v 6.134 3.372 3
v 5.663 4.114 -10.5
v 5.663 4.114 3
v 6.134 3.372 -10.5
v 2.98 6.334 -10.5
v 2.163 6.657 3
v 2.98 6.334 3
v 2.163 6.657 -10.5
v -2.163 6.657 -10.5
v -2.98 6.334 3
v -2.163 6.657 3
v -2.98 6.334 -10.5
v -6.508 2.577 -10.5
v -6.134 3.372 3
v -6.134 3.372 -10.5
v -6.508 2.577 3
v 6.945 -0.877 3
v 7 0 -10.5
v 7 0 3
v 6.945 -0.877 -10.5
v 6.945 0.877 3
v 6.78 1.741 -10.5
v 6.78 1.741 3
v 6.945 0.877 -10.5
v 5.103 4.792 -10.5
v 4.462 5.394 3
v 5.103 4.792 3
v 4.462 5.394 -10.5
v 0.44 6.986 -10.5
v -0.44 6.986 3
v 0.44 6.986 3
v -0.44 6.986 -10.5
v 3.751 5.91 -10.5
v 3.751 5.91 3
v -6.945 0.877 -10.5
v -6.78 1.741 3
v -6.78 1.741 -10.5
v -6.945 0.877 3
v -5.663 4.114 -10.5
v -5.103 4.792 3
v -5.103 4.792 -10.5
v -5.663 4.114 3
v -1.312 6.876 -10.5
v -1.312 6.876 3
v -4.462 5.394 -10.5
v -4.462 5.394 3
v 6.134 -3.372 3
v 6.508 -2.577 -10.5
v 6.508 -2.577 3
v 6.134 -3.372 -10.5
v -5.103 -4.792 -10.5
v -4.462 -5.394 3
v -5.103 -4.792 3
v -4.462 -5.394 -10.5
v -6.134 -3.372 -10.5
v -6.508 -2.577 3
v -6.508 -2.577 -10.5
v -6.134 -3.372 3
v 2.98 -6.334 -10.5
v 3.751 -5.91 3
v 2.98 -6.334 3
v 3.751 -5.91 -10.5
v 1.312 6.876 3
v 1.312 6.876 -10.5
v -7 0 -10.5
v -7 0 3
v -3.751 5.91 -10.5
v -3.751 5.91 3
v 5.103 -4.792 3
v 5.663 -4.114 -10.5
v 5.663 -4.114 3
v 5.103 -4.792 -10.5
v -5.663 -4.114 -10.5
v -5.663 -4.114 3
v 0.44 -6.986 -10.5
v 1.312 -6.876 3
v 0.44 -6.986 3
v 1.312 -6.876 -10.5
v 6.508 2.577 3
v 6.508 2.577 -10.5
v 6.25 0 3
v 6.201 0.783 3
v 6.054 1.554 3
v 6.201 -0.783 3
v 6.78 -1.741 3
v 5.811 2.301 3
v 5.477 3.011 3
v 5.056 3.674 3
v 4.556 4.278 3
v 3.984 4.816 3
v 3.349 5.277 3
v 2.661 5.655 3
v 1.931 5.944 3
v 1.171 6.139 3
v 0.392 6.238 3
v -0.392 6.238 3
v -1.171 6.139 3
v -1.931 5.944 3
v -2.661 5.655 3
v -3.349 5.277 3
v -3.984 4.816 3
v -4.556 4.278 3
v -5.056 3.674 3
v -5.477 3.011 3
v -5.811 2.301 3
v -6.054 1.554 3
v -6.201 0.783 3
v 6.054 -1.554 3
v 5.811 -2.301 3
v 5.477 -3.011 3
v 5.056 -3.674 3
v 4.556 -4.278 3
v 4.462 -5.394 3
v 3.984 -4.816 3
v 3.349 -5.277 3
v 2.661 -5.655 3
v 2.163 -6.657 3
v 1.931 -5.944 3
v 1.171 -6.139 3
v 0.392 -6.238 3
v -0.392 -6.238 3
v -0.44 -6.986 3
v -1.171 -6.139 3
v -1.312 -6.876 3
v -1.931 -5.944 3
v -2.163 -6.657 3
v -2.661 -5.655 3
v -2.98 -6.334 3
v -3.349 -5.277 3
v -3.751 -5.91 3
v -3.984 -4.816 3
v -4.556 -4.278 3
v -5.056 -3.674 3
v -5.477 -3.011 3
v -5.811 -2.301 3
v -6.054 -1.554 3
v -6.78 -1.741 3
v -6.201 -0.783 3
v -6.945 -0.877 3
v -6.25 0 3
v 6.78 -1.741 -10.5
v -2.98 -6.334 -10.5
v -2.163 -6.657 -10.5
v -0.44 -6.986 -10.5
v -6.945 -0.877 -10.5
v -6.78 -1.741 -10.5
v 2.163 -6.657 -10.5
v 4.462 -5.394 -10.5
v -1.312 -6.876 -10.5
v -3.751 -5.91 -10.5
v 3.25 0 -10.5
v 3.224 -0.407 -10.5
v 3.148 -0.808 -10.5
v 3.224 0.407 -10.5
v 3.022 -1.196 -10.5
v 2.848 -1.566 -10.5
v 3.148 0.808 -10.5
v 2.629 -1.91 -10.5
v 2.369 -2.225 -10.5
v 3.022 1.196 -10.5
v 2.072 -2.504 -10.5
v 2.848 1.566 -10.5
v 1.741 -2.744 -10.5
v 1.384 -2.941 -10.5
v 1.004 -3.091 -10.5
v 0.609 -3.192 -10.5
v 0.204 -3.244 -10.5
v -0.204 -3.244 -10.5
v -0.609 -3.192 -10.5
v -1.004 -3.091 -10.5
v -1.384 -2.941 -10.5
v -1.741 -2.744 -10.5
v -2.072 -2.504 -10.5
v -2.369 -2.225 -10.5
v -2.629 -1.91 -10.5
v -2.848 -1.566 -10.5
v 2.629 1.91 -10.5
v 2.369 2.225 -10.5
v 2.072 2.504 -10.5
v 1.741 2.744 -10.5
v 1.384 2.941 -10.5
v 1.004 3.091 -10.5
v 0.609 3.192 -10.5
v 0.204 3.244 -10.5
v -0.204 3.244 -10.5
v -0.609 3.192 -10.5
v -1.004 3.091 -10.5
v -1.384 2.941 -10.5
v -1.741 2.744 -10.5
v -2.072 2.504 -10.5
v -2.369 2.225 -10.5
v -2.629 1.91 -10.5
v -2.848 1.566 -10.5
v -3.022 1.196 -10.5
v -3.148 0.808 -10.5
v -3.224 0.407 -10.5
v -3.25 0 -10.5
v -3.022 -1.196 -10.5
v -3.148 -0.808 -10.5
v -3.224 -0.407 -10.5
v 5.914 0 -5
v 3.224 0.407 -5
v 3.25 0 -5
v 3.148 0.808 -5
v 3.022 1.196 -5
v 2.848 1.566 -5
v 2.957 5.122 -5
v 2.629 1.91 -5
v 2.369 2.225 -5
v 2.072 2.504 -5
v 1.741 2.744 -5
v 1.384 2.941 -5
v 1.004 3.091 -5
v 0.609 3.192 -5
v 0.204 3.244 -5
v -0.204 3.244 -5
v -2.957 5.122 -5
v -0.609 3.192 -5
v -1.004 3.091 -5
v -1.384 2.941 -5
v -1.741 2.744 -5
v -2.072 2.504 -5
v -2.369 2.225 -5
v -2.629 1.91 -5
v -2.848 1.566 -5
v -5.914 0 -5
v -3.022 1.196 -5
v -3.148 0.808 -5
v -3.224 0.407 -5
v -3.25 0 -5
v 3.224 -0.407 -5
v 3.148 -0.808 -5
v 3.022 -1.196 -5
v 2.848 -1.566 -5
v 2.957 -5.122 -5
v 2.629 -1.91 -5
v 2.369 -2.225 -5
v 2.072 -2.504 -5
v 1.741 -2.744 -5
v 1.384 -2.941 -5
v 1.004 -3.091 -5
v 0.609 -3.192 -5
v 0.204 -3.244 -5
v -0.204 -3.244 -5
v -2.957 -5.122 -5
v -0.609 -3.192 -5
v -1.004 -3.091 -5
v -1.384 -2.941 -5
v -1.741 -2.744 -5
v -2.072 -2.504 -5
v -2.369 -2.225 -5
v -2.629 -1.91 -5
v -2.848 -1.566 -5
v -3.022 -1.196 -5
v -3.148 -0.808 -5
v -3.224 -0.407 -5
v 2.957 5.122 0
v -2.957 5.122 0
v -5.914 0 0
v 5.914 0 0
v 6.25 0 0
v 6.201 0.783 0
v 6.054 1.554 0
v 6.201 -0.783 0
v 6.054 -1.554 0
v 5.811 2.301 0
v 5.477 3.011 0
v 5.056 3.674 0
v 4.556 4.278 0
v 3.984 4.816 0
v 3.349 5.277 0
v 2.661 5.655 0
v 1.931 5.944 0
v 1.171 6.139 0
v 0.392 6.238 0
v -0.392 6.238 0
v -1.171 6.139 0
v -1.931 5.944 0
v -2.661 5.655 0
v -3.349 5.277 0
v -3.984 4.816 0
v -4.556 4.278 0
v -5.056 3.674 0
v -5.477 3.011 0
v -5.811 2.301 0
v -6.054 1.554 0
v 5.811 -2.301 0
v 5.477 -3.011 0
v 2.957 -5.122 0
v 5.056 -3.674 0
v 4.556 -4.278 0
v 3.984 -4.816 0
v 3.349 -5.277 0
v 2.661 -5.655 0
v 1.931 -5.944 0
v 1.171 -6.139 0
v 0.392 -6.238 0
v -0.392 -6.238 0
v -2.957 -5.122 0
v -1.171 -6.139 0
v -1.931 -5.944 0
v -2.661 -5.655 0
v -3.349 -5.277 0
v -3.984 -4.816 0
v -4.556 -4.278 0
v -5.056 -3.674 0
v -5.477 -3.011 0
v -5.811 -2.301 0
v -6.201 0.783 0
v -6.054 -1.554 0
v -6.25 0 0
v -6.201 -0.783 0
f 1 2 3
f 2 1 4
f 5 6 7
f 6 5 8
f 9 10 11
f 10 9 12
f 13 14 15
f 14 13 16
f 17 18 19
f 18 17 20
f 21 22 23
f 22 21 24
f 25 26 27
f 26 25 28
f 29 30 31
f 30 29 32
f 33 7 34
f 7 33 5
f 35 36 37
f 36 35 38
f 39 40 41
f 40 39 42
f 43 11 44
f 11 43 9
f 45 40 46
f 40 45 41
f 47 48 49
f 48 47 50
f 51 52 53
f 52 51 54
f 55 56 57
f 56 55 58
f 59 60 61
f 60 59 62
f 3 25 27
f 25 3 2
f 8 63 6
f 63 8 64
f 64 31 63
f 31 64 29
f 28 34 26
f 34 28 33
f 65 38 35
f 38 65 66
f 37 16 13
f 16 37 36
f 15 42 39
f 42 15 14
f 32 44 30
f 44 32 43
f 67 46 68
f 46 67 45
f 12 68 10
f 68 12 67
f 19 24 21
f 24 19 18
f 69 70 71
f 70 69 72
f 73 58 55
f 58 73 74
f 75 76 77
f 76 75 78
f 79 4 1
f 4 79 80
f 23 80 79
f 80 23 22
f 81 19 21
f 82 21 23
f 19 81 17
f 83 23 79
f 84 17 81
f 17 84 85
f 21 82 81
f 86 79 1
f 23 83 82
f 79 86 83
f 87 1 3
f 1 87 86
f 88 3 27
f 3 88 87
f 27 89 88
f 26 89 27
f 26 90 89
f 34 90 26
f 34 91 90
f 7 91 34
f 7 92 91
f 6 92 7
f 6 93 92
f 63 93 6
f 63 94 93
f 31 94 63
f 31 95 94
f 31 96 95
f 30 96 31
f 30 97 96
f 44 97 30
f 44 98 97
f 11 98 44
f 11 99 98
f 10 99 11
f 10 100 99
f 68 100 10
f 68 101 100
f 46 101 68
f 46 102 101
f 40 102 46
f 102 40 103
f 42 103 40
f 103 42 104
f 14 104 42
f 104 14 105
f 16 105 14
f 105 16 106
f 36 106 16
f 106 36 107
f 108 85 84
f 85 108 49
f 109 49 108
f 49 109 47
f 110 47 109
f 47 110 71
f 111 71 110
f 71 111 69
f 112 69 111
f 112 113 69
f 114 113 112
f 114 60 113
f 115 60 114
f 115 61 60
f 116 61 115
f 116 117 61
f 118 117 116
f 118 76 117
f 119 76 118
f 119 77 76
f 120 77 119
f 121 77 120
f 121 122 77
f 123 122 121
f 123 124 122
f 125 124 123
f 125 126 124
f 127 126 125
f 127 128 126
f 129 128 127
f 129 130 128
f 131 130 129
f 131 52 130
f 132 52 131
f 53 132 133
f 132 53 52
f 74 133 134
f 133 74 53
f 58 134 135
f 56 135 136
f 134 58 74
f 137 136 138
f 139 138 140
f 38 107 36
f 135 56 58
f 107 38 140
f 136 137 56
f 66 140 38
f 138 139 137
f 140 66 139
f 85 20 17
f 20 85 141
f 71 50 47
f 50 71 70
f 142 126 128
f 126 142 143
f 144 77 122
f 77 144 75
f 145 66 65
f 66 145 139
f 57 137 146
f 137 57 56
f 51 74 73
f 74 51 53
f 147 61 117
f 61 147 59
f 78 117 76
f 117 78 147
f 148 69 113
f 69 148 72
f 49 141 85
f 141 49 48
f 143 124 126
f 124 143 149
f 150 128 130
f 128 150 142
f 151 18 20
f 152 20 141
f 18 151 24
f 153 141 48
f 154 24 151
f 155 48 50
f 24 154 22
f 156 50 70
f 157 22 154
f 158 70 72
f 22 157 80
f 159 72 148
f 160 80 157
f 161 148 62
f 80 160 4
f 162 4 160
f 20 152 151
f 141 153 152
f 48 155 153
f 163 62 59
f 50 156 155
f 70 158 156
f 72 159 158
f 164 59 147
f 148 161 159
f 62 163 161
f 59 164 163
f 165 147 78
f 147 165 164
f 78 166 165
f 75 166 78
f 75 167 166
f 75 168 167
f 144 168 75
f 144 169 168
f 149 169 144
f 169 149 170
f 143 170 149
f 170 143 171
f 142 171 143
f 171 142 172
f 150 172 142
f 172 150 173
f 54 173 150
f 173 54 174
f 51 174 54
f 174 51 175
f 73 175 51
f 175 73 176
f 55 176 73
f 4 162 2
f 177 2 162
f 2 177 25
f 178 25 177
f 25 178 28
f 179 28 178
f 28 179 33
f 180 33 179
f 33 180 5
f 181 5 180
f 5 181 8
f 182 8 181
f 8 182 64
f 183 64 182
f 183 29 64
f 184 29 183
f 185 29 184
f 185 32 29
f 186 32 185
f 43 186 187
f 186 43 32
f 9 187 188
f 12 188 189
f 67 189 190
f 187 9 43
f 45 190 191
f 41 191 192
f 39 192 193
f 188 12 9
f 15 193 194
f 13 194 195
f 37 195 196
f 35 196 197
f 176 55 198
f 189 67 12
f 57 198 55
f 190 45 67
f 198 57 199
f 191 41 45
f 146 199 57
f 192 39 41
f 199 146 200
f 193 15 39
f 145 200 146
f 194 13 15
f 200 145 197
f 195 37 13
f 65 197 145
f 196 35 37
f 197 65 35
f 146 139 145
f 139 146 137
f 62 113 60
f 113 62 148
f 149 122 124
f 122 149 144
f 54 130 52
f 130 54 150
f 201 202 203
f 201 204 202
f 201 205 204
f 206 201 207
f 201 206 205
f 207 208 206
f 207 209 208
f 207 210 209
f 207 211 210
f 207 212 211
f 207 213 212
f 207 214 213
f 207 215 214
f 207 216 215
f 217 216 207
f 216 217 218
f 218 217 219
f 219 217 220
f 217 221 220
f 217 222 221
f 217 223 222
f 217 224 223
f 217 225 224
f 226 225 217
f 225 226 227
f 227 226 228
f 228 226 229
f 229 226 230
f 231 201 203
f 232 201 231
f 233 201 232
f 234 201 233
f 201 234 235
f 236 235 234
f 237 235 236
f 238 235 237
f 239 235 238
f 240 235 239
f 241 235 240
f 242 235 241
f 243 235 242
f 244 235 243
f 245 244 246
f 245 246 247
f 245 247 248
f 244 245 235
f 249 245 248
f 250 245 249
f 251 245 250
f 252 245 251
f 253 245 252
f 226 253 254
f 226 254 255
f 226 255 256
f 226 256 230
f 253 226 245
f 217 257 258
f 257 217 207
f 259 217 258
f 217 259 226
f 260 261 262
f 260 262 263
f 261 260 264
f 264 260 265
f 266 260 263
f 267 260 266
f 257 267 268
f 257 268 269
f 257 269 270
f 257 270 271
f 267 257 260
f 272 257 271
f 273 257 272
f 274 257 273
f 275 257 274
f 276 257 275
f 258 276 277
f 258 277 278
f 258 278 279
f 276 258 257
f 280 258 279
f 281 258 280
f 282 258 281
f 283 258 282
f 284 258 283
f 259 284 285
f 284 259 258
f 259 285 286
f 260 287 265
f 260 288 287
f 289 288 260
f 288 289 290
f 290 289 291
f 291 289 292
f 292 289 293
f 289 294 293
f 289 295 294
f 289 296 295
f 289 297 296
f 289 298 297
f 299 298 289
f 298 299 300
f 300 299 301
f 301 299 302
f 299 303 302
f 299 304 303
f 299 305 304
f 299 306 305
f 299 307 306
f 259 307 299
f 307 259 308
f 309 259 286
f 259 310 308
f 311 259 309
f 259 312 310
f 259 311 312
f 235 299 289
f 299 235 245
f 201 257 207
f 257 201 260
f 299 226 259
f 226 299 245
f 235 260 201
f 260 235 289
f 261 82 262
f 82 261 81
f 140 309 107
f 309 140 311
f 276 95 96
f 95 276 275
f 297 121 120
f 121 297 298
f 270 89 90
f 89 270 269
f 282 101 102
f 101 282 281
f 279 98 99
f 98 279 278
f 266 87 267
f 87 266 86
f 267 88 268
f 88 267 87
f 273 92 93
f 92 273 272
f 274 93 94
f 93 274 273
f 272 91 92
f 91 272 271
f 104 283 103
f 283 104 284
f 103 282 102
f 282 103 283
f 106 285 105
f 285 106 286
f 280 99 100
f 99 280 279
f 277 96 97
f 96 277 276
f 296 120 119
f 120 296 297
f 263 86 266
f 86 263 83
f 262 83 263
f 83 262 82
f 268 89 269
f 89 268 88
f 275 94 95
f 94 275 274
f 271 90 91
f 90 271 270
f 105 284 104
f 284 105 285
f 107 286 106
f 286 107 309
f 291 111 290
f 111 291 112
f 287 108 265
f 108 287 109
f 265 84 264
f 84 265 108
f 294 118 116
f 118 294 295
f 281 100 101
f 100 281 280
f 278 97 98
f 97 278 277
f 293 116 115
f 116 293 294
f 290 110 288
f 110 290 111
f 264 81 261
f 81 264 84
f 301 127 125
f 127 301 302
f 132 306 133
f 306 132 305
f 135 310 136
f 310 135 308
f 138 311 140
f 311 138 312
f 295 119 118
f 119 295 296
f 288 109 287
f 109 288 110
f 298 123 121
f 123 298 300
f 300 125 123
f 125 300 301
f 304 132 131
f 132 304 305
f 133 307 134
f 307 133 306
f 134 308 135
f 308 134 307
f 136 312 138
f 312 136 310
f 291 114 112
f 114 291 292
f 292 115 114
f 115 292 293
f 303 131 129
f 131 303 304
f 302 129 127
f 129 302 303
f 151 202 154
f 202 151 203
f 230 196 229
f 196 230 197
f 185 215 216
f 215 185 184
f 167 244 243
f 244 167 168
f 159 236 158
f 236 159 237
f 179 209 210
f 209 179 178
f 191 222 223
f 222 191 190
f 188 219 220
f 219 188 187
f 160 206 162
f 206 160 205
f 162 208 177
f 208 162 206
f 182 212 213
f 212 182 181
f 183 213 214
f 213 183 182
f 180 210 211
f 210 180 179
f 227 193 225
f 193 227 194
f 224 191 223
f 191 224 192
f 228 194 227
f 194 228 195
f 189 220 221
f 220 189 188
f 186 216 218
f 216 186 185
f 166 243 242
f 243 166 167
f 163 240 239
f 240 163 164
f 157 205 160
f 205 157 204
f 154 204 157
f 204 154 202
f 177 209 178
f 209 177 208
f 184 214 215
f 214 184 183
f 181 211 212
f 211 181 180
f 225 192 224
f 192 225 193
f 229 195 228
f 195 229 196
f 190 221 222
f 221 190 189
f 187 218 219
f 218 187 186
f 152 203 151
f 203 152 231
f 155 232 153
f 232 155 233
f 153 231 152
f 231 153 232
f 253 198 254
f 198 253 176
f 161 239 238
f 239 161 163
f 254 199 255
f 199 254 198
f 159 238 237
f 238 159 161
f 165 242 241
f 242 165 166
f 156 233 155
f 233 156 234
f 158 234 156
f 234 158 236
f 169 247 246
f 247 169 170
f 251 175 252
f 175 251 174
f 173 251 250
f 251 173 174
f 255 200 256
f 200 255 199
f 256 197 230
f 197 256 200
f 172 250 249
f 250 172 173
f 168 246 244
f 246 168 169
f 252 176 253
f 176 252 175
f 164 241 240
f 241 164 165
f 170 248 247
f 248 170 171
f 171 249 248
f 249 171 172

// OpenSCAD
$fn = 50;


difference() {
	union() {
		translate(v = [0, 0, -10.5000000000]) {
			cylinder(h = 13.5000000000, r = 7.0000000000);
		}
		#translate(v = [0, 0, -12.0000000000]) {
			cylinder(h = 12, r = 2.8750000000);
		}
	}
	union() {
		translate(v = [0, 0, 0]) {
			rotate(a = [0, 0, 0]) {
				difference() {
					union() {
						translate(v = [0, 0, -5]) {
							linear_extrude(height = 5) {
								polygon(points = [[5.9142500000, 0.0000000000], [2.9571250000, 5.1218907443], [-2.9571250000, 5.1218907443], [-5.9142500000, 0.0000000000], [-2.9571250000, -5.1218907443], [2.9571250000, -5.1218907443]]);
							}
						}
					}
					union();
				}
			}
		}
		#cylinder(h = 3, r = 6.2500000000);
		#translate(v = [0, 0, -100.0000000000]) {
			cylinder(h = 200, r = 3.2500000000);
		}
	}
}
